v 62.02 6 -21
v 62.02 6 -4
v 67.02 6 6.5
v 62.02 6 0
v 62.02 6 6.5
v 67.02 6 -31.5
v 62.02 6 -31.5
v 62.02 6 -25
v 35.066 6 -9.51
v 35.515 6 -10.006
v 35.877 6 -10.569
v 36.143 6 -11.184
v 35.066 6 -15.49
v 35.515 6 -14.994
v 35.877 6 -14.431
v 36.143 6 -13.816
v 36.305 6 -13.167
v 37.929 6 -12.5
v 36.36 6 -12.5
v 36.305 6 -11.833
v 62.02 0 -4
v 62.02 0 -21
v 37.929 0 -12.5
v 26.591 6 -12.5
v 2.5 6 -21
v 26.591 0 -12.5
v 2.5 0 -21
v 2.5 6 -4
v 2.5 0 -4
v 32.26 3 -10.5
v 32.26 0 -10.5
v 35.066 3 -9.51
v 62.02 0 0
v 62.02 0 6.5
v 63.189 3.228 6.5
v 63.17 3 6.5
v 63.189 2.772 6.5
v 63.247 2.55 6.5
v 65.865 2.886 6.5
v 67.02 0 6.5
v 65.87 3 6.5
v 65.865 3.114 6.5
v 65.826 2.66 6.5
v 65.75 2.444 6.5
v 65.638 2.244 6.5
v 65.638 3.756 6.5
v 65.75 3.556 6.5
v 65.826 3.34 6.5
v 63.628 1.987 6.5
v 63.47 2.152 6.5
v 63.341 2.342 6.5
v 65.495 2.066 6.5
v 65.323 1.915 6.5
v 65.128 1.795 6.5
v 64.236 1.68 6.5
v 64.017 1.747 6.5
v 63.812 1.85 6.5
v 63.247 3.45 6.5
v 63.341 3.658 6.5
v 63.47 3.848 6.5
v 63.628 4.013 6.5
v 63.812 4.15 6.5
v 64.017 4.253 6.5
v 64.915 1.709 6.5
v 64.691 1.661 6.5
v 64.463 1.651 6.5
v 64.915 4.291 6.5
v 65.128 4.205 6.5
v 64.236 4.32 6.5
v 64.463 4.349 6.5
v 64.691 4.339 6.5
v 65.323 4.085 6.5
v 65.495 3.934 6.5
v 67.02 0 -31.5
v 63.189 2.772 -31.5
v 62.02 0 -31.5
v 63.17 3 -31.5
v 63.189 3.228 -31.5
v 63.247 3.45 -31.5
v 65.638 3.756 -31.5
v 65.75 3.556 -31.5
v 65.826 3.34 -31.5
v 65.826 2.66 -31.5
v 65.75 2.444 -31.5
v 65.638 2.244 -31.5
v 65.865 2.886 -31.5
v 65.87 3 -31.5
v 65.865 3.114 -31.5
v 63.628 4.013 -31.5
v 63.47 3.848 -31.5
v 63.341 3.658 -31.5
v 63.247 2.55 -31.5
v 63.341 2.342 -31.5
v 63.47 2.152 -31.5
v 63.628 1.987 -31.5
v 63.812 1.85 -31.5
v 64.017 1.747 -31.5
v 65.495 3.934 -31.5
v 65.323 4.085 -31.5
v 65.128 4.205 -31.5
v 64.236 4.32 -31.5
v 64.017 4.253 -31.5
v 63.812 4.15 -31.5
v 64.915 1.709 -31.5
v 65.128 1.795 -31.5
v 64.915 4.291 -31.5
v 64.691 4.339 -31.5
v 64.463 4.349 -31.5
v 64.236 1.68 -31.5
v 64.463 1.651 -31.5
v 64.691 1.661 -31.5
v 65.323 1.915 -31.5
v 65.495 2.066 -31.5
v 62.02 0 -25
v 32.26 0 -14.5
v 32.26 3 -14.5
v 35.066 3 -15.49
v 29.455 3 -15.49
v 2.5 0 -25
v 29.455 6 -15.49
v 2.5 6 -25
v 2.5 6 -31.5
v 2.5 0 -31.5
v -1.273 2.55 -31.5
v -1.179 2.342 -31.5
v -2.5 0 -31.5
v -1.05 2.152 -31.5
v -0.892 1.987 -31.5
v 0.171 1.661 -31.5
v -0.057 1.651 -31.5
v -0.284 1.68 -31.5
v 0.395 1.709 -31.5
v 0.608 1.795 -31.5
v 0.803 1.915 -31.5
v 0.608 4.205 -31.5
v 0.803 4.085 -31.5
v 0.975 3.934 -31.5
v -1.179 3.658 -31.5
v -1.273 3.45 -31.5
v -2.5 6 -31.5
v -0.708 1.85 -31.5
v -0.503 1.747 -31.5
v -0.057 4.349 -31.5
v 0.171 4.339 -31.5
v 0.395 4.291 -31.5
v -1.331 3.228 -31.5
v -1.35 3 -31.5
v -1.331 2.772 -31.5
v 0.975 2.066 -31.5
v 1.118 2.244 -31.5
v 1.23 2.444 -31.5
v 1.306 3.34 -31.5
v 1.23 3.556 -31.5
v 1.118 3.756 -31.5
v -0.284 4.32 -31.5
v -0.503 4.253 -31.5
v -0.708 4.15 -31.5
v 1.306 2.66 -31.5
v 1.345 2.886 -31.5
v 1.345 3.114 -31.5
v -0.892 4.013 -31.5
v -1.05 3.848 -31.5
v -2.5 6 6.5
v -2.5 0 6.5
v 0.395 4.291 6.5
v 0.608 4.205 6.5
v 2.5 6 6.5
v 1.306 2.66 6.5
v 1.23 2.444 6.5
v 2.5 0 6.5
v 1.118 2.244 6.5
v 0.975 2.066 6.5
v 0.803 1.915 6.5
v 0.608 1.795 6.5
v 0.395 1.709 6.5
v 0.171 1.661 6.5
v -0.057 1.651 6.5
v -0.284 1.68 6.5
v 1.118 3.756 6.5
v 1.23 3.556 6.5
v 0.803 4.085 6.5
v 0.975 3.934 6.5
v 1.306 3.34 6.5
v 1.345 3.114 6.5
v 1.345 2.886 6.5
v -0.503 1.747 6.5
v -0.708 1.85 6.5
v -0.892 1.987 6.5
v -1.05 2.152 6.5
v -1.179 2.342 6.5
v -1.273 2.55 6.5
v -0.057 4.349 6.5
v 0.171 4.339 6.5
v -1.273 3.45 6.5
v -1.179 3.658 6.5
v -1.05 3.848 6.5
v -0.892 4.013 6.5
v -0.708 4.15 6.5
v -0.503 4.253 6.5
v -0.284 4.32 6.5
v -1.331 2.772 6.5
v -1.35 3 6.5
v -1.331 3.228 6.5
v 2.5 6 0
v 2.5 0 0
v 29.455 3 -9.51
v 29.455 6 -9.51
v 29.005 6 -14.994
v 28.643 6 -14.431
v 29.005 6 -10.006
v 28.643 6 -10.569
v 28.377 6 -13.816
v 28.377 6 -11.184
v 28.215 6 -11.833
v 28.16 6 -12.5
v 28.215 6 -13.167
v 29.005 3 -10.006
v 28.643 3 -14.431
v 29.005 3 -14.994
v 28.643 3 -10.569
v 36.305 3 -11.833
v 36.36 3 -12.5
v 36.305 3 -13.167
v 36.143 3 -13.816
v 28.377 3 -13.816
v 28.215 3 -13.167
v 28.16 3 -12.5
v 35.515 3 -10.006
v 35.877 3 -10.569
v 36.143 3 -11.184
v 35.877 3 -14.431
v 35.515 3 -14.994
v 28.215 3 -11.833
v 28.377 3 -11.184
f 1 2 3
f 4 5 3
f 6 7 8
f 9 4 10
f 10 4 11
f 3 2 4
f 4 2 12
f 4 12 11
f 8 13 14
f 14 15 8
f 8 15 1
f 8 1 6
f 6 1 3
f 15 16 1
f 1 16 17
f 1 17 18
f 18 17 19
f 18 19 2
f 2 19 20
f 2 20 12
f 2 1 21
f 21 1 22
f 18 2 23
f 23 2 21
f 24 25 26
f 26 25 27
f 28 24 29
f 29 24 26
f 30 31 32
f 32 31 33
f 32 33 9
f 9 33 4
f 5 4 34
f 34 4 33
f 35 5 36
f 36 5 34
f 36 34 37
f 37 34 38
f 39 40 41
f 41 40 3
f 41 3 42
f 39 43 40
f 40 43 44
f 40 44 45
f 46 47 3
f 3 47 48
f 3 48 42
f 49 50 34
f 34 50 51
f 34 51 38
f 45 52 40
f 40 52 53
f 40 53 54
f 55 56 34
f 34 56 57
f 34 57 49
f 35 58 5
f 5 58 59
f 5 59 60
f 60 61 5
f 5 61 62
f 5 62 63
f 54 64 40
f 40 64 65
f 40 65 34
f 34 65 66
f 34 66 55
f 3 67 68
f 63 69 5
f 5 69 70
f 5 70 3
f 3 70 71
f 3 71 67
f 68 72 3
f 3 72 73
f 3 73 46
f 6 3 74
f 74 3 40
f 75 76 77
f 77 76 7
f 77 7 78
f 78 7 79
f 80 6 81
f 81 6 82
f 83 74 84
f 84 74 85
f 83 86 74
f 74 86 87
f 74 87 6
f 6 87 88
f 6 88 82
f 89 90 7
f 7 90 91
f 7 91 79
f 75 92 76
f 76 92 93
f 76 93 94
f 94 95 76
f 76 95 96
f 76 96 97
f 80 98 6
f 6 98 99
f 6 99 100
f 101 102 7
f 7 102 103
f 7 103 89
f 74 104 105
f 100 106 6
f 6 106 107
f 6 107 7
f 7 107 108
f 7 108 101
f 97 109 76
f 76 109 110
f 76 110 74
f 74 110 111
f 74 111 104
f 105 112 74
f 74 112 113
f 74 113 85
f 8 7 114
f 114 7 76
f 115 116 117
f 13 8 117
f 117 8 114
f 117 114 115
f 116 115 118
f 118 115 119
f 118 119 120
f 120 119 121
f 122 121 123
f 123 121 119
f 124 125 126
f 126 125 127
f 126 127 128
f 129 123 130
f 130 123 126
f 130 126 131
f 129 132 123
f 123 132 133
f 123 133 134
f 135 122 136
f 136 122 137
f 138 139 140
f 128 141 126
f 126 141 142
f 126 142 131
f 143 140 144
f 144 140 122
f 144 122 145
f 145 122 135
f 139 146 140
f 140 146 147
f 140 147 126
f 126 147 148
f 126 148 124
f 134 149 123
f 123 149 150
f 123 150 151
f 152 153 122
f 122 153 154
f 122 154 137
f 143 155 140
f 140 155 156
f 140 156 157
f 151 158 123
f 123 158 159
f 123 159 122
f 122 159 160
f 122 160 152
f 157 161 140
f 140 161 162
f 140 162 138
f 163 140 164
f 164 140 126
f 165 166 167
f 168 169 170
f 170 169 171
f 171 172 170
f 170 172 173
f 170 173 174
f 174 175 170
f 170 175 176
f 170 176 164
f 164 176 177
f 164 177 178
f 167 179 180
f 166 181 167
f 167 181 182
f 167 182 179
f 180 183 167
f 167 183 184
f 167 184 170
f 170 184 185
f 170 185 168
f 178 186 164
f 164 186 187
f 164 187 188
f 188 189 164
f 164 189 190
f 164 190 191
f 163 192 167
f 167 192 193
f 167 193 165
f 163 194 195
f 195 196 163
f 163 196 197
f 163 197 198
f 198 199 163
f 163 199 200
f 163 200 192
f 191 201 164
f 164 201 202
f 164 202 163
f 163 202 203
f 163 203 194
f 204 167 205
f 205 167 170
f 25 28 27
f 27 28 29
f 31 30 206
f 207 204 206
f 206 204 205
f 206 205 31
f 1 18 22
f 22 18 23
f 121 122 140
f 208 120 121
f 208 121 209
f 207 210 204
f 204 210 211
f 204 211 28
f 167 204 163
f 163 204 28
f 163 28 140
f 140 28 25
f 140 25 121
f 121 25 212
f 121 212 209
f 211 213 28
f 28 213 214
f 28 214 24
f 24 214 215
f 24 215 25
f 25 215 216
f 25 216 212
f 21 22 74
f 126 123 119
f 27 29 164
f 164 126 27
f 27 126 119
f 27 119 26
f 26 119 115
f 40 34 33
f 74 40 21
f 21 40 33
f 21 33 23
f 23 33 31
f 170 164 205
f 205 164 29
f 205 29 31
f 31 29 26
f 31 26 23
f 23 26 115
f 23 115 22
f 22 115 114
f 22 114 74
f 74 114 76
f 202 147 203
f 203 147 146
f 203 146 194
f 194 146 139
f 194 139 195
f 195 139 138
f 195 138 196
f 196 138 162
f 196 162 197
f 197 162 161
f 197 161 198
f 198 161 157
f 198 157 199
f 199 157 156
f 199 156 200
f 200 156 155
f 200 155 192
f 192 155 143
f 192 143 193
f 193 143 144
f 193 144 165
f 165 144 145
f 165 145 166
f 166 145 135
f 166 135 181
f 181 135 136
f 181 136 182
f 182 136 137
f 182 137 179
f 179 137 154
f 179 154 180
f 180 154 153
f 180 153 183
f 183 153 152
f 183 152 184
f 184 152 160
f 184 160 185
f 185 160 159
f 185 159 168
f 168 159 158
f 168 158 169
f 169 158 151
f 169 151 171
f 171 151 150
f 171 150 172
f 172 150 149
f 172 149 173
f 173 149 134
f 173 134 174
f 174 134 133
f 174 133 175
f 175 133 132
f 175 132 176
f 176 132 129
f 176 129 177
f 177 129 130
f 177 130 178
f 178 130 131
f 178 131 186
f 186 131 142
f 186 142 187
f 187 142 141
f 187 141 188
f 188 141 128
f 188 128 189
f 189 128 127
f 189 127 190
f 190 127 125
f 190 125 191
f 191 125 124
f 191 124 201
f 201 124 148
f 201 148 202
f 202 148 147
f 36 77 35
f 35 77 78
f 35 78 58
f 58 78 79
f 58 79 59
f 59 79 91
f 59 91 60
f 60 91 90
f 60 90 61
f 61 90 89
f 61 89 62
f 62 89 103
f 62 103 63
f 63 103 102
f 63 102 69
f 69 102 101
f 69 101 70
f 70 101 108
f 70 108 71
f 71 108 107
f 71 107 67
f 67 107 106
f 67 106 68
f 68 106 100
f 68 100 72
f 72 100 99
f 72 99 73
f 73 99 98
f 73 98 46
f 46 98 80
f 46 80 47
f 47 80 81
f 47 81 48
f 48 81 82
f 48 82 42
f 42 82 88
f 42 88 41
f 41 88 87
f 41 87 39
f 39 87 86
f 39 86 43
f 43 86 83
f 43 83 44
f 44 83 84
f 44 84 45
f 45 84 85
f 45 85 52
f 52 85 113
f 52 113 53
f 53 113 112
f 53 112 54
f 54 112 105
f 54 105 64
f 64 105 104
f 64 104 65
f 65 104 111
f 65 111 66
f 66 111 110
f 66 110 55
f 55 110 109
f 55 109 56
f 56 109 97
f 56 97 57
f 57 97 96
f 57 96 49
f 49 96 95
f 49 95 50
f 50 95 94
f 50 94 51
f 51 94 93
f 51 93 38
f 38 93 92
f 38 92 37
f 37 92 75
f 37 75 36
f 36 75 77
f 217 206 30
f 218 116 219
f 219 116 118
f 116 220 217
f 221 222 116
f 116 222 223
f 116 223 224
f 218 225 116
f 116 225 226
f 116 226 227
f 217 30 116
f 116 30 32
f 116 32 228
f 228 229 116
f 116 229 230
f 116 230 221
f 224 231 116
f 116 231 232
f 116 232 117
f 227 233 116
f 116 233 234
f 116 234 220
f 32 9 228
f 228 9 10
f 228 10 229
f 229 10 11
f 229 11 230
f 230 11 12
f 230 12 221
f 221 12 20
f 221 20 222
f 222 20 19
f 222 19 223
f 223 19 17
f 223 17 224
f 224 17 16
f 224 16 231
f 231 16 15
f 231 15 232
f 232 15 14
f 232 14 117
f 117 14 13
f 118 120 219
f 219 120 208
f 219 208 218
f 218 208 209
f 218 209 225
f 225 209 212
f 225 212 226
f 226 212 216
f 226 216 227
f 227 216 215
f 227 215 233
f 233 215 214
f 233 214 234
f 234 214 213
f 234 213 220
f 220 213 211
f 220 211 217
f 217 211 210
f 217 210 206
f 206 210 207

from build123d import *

# Parameters (mm, degrees)
BOSS_EXTRUDE1_DEPTH     = 6
SKETCH2_R               = 1.35
CUT_EXTRUDE1_DEPTH      = 39
ESQUISSE1_R             = 4.1
ENL_V_MAT_EXTRU_1_DEPTH = 3


with BuildPart() as part:
    # Sketch1 → Boss-Extrude1 (new body)
    with BuildSketch(Plane(origin=(0, 0, 0), x_dir=(1, 0, 0), z_dir=(0, 1, 0))):
        Polygon((2.5, 0), (0, 0), (0, 25), (2.5, 25), (2.5, 31.5), (-2.5, 31.5), (-2.5, -6.5), (2.5, -6.5), align=None)
        Polygon((0, 25), (0, 0), (2.5, 0), (2.5, 4), (2.5, 21), (2.5, 25), align=None)
        Polygon((32.26, 14.5), (2.5, 25), (2.5, 21), (26.591428571, 12.5), align=None)
        Polygon((26.591428571, 12.5), (32.26, 10.5), (37.928571429, 12.5), (32.26, 14.5), align=None)
        Polygon((32.26, 14.5), (37.928571429, 12.5), (62.02, 21), (62.02, 25), align=None)
        Polygon((2.5, 4), (2.5, 0), (32.26, 10.5), (26.591428571, 12.5), align=None)
        Polygon((32.26, 10.5), (62.02, 0), (62.02, 4), (37.928571429, 12.5), align=None)
        Polygon((62.02, 4), (62.02, 0), (64.52, 0), (64.52, 25), (62.02, 25), (62.02, 21), align=None)
        Polygon((64.52, 0), (62.02, 0), (62.02, -6.5), (67.02, -6.5), (67.02, 31.5), (62.02, 31.5), (62.02, 25), (64.52, 25), align=None)
    extrude(amount=BOSS_EXTRUDE1_DEPTH)

    # Sketch2 → Cut-Extrude1 (cut, through all)
    with BuildSketch(Plane(origin=(0, 0, -31.5), x_dir=(-1, 0, 0), z_dir=(0, 0, -1))):
        with Locations((0, 3)):
            Circle(SKETCH2_R)
        with Locations((-64.52, 3)):
            Circle(SKETCH2_R)
    extrude(amount=-CUT_EXTRUDE1_DEPTH, mode=Mode.SUBTRACT)

    # Esquisse1 → Enlèv. mat.-Extru.1 (cut)
    with BuildSketch(Plane(origin=(0, 6, 0), x_dir=(1, 0, 0), z_dir=(0, 1, 0))):
        with Locations((32.26, 12.5)):
            Circle(ESQUISSE1_R)
    extrude(amount=-ENL_V_MAT_EXTRU_1_DEPTH, mode=Mode.SUBTRACT)


solid = part.part
